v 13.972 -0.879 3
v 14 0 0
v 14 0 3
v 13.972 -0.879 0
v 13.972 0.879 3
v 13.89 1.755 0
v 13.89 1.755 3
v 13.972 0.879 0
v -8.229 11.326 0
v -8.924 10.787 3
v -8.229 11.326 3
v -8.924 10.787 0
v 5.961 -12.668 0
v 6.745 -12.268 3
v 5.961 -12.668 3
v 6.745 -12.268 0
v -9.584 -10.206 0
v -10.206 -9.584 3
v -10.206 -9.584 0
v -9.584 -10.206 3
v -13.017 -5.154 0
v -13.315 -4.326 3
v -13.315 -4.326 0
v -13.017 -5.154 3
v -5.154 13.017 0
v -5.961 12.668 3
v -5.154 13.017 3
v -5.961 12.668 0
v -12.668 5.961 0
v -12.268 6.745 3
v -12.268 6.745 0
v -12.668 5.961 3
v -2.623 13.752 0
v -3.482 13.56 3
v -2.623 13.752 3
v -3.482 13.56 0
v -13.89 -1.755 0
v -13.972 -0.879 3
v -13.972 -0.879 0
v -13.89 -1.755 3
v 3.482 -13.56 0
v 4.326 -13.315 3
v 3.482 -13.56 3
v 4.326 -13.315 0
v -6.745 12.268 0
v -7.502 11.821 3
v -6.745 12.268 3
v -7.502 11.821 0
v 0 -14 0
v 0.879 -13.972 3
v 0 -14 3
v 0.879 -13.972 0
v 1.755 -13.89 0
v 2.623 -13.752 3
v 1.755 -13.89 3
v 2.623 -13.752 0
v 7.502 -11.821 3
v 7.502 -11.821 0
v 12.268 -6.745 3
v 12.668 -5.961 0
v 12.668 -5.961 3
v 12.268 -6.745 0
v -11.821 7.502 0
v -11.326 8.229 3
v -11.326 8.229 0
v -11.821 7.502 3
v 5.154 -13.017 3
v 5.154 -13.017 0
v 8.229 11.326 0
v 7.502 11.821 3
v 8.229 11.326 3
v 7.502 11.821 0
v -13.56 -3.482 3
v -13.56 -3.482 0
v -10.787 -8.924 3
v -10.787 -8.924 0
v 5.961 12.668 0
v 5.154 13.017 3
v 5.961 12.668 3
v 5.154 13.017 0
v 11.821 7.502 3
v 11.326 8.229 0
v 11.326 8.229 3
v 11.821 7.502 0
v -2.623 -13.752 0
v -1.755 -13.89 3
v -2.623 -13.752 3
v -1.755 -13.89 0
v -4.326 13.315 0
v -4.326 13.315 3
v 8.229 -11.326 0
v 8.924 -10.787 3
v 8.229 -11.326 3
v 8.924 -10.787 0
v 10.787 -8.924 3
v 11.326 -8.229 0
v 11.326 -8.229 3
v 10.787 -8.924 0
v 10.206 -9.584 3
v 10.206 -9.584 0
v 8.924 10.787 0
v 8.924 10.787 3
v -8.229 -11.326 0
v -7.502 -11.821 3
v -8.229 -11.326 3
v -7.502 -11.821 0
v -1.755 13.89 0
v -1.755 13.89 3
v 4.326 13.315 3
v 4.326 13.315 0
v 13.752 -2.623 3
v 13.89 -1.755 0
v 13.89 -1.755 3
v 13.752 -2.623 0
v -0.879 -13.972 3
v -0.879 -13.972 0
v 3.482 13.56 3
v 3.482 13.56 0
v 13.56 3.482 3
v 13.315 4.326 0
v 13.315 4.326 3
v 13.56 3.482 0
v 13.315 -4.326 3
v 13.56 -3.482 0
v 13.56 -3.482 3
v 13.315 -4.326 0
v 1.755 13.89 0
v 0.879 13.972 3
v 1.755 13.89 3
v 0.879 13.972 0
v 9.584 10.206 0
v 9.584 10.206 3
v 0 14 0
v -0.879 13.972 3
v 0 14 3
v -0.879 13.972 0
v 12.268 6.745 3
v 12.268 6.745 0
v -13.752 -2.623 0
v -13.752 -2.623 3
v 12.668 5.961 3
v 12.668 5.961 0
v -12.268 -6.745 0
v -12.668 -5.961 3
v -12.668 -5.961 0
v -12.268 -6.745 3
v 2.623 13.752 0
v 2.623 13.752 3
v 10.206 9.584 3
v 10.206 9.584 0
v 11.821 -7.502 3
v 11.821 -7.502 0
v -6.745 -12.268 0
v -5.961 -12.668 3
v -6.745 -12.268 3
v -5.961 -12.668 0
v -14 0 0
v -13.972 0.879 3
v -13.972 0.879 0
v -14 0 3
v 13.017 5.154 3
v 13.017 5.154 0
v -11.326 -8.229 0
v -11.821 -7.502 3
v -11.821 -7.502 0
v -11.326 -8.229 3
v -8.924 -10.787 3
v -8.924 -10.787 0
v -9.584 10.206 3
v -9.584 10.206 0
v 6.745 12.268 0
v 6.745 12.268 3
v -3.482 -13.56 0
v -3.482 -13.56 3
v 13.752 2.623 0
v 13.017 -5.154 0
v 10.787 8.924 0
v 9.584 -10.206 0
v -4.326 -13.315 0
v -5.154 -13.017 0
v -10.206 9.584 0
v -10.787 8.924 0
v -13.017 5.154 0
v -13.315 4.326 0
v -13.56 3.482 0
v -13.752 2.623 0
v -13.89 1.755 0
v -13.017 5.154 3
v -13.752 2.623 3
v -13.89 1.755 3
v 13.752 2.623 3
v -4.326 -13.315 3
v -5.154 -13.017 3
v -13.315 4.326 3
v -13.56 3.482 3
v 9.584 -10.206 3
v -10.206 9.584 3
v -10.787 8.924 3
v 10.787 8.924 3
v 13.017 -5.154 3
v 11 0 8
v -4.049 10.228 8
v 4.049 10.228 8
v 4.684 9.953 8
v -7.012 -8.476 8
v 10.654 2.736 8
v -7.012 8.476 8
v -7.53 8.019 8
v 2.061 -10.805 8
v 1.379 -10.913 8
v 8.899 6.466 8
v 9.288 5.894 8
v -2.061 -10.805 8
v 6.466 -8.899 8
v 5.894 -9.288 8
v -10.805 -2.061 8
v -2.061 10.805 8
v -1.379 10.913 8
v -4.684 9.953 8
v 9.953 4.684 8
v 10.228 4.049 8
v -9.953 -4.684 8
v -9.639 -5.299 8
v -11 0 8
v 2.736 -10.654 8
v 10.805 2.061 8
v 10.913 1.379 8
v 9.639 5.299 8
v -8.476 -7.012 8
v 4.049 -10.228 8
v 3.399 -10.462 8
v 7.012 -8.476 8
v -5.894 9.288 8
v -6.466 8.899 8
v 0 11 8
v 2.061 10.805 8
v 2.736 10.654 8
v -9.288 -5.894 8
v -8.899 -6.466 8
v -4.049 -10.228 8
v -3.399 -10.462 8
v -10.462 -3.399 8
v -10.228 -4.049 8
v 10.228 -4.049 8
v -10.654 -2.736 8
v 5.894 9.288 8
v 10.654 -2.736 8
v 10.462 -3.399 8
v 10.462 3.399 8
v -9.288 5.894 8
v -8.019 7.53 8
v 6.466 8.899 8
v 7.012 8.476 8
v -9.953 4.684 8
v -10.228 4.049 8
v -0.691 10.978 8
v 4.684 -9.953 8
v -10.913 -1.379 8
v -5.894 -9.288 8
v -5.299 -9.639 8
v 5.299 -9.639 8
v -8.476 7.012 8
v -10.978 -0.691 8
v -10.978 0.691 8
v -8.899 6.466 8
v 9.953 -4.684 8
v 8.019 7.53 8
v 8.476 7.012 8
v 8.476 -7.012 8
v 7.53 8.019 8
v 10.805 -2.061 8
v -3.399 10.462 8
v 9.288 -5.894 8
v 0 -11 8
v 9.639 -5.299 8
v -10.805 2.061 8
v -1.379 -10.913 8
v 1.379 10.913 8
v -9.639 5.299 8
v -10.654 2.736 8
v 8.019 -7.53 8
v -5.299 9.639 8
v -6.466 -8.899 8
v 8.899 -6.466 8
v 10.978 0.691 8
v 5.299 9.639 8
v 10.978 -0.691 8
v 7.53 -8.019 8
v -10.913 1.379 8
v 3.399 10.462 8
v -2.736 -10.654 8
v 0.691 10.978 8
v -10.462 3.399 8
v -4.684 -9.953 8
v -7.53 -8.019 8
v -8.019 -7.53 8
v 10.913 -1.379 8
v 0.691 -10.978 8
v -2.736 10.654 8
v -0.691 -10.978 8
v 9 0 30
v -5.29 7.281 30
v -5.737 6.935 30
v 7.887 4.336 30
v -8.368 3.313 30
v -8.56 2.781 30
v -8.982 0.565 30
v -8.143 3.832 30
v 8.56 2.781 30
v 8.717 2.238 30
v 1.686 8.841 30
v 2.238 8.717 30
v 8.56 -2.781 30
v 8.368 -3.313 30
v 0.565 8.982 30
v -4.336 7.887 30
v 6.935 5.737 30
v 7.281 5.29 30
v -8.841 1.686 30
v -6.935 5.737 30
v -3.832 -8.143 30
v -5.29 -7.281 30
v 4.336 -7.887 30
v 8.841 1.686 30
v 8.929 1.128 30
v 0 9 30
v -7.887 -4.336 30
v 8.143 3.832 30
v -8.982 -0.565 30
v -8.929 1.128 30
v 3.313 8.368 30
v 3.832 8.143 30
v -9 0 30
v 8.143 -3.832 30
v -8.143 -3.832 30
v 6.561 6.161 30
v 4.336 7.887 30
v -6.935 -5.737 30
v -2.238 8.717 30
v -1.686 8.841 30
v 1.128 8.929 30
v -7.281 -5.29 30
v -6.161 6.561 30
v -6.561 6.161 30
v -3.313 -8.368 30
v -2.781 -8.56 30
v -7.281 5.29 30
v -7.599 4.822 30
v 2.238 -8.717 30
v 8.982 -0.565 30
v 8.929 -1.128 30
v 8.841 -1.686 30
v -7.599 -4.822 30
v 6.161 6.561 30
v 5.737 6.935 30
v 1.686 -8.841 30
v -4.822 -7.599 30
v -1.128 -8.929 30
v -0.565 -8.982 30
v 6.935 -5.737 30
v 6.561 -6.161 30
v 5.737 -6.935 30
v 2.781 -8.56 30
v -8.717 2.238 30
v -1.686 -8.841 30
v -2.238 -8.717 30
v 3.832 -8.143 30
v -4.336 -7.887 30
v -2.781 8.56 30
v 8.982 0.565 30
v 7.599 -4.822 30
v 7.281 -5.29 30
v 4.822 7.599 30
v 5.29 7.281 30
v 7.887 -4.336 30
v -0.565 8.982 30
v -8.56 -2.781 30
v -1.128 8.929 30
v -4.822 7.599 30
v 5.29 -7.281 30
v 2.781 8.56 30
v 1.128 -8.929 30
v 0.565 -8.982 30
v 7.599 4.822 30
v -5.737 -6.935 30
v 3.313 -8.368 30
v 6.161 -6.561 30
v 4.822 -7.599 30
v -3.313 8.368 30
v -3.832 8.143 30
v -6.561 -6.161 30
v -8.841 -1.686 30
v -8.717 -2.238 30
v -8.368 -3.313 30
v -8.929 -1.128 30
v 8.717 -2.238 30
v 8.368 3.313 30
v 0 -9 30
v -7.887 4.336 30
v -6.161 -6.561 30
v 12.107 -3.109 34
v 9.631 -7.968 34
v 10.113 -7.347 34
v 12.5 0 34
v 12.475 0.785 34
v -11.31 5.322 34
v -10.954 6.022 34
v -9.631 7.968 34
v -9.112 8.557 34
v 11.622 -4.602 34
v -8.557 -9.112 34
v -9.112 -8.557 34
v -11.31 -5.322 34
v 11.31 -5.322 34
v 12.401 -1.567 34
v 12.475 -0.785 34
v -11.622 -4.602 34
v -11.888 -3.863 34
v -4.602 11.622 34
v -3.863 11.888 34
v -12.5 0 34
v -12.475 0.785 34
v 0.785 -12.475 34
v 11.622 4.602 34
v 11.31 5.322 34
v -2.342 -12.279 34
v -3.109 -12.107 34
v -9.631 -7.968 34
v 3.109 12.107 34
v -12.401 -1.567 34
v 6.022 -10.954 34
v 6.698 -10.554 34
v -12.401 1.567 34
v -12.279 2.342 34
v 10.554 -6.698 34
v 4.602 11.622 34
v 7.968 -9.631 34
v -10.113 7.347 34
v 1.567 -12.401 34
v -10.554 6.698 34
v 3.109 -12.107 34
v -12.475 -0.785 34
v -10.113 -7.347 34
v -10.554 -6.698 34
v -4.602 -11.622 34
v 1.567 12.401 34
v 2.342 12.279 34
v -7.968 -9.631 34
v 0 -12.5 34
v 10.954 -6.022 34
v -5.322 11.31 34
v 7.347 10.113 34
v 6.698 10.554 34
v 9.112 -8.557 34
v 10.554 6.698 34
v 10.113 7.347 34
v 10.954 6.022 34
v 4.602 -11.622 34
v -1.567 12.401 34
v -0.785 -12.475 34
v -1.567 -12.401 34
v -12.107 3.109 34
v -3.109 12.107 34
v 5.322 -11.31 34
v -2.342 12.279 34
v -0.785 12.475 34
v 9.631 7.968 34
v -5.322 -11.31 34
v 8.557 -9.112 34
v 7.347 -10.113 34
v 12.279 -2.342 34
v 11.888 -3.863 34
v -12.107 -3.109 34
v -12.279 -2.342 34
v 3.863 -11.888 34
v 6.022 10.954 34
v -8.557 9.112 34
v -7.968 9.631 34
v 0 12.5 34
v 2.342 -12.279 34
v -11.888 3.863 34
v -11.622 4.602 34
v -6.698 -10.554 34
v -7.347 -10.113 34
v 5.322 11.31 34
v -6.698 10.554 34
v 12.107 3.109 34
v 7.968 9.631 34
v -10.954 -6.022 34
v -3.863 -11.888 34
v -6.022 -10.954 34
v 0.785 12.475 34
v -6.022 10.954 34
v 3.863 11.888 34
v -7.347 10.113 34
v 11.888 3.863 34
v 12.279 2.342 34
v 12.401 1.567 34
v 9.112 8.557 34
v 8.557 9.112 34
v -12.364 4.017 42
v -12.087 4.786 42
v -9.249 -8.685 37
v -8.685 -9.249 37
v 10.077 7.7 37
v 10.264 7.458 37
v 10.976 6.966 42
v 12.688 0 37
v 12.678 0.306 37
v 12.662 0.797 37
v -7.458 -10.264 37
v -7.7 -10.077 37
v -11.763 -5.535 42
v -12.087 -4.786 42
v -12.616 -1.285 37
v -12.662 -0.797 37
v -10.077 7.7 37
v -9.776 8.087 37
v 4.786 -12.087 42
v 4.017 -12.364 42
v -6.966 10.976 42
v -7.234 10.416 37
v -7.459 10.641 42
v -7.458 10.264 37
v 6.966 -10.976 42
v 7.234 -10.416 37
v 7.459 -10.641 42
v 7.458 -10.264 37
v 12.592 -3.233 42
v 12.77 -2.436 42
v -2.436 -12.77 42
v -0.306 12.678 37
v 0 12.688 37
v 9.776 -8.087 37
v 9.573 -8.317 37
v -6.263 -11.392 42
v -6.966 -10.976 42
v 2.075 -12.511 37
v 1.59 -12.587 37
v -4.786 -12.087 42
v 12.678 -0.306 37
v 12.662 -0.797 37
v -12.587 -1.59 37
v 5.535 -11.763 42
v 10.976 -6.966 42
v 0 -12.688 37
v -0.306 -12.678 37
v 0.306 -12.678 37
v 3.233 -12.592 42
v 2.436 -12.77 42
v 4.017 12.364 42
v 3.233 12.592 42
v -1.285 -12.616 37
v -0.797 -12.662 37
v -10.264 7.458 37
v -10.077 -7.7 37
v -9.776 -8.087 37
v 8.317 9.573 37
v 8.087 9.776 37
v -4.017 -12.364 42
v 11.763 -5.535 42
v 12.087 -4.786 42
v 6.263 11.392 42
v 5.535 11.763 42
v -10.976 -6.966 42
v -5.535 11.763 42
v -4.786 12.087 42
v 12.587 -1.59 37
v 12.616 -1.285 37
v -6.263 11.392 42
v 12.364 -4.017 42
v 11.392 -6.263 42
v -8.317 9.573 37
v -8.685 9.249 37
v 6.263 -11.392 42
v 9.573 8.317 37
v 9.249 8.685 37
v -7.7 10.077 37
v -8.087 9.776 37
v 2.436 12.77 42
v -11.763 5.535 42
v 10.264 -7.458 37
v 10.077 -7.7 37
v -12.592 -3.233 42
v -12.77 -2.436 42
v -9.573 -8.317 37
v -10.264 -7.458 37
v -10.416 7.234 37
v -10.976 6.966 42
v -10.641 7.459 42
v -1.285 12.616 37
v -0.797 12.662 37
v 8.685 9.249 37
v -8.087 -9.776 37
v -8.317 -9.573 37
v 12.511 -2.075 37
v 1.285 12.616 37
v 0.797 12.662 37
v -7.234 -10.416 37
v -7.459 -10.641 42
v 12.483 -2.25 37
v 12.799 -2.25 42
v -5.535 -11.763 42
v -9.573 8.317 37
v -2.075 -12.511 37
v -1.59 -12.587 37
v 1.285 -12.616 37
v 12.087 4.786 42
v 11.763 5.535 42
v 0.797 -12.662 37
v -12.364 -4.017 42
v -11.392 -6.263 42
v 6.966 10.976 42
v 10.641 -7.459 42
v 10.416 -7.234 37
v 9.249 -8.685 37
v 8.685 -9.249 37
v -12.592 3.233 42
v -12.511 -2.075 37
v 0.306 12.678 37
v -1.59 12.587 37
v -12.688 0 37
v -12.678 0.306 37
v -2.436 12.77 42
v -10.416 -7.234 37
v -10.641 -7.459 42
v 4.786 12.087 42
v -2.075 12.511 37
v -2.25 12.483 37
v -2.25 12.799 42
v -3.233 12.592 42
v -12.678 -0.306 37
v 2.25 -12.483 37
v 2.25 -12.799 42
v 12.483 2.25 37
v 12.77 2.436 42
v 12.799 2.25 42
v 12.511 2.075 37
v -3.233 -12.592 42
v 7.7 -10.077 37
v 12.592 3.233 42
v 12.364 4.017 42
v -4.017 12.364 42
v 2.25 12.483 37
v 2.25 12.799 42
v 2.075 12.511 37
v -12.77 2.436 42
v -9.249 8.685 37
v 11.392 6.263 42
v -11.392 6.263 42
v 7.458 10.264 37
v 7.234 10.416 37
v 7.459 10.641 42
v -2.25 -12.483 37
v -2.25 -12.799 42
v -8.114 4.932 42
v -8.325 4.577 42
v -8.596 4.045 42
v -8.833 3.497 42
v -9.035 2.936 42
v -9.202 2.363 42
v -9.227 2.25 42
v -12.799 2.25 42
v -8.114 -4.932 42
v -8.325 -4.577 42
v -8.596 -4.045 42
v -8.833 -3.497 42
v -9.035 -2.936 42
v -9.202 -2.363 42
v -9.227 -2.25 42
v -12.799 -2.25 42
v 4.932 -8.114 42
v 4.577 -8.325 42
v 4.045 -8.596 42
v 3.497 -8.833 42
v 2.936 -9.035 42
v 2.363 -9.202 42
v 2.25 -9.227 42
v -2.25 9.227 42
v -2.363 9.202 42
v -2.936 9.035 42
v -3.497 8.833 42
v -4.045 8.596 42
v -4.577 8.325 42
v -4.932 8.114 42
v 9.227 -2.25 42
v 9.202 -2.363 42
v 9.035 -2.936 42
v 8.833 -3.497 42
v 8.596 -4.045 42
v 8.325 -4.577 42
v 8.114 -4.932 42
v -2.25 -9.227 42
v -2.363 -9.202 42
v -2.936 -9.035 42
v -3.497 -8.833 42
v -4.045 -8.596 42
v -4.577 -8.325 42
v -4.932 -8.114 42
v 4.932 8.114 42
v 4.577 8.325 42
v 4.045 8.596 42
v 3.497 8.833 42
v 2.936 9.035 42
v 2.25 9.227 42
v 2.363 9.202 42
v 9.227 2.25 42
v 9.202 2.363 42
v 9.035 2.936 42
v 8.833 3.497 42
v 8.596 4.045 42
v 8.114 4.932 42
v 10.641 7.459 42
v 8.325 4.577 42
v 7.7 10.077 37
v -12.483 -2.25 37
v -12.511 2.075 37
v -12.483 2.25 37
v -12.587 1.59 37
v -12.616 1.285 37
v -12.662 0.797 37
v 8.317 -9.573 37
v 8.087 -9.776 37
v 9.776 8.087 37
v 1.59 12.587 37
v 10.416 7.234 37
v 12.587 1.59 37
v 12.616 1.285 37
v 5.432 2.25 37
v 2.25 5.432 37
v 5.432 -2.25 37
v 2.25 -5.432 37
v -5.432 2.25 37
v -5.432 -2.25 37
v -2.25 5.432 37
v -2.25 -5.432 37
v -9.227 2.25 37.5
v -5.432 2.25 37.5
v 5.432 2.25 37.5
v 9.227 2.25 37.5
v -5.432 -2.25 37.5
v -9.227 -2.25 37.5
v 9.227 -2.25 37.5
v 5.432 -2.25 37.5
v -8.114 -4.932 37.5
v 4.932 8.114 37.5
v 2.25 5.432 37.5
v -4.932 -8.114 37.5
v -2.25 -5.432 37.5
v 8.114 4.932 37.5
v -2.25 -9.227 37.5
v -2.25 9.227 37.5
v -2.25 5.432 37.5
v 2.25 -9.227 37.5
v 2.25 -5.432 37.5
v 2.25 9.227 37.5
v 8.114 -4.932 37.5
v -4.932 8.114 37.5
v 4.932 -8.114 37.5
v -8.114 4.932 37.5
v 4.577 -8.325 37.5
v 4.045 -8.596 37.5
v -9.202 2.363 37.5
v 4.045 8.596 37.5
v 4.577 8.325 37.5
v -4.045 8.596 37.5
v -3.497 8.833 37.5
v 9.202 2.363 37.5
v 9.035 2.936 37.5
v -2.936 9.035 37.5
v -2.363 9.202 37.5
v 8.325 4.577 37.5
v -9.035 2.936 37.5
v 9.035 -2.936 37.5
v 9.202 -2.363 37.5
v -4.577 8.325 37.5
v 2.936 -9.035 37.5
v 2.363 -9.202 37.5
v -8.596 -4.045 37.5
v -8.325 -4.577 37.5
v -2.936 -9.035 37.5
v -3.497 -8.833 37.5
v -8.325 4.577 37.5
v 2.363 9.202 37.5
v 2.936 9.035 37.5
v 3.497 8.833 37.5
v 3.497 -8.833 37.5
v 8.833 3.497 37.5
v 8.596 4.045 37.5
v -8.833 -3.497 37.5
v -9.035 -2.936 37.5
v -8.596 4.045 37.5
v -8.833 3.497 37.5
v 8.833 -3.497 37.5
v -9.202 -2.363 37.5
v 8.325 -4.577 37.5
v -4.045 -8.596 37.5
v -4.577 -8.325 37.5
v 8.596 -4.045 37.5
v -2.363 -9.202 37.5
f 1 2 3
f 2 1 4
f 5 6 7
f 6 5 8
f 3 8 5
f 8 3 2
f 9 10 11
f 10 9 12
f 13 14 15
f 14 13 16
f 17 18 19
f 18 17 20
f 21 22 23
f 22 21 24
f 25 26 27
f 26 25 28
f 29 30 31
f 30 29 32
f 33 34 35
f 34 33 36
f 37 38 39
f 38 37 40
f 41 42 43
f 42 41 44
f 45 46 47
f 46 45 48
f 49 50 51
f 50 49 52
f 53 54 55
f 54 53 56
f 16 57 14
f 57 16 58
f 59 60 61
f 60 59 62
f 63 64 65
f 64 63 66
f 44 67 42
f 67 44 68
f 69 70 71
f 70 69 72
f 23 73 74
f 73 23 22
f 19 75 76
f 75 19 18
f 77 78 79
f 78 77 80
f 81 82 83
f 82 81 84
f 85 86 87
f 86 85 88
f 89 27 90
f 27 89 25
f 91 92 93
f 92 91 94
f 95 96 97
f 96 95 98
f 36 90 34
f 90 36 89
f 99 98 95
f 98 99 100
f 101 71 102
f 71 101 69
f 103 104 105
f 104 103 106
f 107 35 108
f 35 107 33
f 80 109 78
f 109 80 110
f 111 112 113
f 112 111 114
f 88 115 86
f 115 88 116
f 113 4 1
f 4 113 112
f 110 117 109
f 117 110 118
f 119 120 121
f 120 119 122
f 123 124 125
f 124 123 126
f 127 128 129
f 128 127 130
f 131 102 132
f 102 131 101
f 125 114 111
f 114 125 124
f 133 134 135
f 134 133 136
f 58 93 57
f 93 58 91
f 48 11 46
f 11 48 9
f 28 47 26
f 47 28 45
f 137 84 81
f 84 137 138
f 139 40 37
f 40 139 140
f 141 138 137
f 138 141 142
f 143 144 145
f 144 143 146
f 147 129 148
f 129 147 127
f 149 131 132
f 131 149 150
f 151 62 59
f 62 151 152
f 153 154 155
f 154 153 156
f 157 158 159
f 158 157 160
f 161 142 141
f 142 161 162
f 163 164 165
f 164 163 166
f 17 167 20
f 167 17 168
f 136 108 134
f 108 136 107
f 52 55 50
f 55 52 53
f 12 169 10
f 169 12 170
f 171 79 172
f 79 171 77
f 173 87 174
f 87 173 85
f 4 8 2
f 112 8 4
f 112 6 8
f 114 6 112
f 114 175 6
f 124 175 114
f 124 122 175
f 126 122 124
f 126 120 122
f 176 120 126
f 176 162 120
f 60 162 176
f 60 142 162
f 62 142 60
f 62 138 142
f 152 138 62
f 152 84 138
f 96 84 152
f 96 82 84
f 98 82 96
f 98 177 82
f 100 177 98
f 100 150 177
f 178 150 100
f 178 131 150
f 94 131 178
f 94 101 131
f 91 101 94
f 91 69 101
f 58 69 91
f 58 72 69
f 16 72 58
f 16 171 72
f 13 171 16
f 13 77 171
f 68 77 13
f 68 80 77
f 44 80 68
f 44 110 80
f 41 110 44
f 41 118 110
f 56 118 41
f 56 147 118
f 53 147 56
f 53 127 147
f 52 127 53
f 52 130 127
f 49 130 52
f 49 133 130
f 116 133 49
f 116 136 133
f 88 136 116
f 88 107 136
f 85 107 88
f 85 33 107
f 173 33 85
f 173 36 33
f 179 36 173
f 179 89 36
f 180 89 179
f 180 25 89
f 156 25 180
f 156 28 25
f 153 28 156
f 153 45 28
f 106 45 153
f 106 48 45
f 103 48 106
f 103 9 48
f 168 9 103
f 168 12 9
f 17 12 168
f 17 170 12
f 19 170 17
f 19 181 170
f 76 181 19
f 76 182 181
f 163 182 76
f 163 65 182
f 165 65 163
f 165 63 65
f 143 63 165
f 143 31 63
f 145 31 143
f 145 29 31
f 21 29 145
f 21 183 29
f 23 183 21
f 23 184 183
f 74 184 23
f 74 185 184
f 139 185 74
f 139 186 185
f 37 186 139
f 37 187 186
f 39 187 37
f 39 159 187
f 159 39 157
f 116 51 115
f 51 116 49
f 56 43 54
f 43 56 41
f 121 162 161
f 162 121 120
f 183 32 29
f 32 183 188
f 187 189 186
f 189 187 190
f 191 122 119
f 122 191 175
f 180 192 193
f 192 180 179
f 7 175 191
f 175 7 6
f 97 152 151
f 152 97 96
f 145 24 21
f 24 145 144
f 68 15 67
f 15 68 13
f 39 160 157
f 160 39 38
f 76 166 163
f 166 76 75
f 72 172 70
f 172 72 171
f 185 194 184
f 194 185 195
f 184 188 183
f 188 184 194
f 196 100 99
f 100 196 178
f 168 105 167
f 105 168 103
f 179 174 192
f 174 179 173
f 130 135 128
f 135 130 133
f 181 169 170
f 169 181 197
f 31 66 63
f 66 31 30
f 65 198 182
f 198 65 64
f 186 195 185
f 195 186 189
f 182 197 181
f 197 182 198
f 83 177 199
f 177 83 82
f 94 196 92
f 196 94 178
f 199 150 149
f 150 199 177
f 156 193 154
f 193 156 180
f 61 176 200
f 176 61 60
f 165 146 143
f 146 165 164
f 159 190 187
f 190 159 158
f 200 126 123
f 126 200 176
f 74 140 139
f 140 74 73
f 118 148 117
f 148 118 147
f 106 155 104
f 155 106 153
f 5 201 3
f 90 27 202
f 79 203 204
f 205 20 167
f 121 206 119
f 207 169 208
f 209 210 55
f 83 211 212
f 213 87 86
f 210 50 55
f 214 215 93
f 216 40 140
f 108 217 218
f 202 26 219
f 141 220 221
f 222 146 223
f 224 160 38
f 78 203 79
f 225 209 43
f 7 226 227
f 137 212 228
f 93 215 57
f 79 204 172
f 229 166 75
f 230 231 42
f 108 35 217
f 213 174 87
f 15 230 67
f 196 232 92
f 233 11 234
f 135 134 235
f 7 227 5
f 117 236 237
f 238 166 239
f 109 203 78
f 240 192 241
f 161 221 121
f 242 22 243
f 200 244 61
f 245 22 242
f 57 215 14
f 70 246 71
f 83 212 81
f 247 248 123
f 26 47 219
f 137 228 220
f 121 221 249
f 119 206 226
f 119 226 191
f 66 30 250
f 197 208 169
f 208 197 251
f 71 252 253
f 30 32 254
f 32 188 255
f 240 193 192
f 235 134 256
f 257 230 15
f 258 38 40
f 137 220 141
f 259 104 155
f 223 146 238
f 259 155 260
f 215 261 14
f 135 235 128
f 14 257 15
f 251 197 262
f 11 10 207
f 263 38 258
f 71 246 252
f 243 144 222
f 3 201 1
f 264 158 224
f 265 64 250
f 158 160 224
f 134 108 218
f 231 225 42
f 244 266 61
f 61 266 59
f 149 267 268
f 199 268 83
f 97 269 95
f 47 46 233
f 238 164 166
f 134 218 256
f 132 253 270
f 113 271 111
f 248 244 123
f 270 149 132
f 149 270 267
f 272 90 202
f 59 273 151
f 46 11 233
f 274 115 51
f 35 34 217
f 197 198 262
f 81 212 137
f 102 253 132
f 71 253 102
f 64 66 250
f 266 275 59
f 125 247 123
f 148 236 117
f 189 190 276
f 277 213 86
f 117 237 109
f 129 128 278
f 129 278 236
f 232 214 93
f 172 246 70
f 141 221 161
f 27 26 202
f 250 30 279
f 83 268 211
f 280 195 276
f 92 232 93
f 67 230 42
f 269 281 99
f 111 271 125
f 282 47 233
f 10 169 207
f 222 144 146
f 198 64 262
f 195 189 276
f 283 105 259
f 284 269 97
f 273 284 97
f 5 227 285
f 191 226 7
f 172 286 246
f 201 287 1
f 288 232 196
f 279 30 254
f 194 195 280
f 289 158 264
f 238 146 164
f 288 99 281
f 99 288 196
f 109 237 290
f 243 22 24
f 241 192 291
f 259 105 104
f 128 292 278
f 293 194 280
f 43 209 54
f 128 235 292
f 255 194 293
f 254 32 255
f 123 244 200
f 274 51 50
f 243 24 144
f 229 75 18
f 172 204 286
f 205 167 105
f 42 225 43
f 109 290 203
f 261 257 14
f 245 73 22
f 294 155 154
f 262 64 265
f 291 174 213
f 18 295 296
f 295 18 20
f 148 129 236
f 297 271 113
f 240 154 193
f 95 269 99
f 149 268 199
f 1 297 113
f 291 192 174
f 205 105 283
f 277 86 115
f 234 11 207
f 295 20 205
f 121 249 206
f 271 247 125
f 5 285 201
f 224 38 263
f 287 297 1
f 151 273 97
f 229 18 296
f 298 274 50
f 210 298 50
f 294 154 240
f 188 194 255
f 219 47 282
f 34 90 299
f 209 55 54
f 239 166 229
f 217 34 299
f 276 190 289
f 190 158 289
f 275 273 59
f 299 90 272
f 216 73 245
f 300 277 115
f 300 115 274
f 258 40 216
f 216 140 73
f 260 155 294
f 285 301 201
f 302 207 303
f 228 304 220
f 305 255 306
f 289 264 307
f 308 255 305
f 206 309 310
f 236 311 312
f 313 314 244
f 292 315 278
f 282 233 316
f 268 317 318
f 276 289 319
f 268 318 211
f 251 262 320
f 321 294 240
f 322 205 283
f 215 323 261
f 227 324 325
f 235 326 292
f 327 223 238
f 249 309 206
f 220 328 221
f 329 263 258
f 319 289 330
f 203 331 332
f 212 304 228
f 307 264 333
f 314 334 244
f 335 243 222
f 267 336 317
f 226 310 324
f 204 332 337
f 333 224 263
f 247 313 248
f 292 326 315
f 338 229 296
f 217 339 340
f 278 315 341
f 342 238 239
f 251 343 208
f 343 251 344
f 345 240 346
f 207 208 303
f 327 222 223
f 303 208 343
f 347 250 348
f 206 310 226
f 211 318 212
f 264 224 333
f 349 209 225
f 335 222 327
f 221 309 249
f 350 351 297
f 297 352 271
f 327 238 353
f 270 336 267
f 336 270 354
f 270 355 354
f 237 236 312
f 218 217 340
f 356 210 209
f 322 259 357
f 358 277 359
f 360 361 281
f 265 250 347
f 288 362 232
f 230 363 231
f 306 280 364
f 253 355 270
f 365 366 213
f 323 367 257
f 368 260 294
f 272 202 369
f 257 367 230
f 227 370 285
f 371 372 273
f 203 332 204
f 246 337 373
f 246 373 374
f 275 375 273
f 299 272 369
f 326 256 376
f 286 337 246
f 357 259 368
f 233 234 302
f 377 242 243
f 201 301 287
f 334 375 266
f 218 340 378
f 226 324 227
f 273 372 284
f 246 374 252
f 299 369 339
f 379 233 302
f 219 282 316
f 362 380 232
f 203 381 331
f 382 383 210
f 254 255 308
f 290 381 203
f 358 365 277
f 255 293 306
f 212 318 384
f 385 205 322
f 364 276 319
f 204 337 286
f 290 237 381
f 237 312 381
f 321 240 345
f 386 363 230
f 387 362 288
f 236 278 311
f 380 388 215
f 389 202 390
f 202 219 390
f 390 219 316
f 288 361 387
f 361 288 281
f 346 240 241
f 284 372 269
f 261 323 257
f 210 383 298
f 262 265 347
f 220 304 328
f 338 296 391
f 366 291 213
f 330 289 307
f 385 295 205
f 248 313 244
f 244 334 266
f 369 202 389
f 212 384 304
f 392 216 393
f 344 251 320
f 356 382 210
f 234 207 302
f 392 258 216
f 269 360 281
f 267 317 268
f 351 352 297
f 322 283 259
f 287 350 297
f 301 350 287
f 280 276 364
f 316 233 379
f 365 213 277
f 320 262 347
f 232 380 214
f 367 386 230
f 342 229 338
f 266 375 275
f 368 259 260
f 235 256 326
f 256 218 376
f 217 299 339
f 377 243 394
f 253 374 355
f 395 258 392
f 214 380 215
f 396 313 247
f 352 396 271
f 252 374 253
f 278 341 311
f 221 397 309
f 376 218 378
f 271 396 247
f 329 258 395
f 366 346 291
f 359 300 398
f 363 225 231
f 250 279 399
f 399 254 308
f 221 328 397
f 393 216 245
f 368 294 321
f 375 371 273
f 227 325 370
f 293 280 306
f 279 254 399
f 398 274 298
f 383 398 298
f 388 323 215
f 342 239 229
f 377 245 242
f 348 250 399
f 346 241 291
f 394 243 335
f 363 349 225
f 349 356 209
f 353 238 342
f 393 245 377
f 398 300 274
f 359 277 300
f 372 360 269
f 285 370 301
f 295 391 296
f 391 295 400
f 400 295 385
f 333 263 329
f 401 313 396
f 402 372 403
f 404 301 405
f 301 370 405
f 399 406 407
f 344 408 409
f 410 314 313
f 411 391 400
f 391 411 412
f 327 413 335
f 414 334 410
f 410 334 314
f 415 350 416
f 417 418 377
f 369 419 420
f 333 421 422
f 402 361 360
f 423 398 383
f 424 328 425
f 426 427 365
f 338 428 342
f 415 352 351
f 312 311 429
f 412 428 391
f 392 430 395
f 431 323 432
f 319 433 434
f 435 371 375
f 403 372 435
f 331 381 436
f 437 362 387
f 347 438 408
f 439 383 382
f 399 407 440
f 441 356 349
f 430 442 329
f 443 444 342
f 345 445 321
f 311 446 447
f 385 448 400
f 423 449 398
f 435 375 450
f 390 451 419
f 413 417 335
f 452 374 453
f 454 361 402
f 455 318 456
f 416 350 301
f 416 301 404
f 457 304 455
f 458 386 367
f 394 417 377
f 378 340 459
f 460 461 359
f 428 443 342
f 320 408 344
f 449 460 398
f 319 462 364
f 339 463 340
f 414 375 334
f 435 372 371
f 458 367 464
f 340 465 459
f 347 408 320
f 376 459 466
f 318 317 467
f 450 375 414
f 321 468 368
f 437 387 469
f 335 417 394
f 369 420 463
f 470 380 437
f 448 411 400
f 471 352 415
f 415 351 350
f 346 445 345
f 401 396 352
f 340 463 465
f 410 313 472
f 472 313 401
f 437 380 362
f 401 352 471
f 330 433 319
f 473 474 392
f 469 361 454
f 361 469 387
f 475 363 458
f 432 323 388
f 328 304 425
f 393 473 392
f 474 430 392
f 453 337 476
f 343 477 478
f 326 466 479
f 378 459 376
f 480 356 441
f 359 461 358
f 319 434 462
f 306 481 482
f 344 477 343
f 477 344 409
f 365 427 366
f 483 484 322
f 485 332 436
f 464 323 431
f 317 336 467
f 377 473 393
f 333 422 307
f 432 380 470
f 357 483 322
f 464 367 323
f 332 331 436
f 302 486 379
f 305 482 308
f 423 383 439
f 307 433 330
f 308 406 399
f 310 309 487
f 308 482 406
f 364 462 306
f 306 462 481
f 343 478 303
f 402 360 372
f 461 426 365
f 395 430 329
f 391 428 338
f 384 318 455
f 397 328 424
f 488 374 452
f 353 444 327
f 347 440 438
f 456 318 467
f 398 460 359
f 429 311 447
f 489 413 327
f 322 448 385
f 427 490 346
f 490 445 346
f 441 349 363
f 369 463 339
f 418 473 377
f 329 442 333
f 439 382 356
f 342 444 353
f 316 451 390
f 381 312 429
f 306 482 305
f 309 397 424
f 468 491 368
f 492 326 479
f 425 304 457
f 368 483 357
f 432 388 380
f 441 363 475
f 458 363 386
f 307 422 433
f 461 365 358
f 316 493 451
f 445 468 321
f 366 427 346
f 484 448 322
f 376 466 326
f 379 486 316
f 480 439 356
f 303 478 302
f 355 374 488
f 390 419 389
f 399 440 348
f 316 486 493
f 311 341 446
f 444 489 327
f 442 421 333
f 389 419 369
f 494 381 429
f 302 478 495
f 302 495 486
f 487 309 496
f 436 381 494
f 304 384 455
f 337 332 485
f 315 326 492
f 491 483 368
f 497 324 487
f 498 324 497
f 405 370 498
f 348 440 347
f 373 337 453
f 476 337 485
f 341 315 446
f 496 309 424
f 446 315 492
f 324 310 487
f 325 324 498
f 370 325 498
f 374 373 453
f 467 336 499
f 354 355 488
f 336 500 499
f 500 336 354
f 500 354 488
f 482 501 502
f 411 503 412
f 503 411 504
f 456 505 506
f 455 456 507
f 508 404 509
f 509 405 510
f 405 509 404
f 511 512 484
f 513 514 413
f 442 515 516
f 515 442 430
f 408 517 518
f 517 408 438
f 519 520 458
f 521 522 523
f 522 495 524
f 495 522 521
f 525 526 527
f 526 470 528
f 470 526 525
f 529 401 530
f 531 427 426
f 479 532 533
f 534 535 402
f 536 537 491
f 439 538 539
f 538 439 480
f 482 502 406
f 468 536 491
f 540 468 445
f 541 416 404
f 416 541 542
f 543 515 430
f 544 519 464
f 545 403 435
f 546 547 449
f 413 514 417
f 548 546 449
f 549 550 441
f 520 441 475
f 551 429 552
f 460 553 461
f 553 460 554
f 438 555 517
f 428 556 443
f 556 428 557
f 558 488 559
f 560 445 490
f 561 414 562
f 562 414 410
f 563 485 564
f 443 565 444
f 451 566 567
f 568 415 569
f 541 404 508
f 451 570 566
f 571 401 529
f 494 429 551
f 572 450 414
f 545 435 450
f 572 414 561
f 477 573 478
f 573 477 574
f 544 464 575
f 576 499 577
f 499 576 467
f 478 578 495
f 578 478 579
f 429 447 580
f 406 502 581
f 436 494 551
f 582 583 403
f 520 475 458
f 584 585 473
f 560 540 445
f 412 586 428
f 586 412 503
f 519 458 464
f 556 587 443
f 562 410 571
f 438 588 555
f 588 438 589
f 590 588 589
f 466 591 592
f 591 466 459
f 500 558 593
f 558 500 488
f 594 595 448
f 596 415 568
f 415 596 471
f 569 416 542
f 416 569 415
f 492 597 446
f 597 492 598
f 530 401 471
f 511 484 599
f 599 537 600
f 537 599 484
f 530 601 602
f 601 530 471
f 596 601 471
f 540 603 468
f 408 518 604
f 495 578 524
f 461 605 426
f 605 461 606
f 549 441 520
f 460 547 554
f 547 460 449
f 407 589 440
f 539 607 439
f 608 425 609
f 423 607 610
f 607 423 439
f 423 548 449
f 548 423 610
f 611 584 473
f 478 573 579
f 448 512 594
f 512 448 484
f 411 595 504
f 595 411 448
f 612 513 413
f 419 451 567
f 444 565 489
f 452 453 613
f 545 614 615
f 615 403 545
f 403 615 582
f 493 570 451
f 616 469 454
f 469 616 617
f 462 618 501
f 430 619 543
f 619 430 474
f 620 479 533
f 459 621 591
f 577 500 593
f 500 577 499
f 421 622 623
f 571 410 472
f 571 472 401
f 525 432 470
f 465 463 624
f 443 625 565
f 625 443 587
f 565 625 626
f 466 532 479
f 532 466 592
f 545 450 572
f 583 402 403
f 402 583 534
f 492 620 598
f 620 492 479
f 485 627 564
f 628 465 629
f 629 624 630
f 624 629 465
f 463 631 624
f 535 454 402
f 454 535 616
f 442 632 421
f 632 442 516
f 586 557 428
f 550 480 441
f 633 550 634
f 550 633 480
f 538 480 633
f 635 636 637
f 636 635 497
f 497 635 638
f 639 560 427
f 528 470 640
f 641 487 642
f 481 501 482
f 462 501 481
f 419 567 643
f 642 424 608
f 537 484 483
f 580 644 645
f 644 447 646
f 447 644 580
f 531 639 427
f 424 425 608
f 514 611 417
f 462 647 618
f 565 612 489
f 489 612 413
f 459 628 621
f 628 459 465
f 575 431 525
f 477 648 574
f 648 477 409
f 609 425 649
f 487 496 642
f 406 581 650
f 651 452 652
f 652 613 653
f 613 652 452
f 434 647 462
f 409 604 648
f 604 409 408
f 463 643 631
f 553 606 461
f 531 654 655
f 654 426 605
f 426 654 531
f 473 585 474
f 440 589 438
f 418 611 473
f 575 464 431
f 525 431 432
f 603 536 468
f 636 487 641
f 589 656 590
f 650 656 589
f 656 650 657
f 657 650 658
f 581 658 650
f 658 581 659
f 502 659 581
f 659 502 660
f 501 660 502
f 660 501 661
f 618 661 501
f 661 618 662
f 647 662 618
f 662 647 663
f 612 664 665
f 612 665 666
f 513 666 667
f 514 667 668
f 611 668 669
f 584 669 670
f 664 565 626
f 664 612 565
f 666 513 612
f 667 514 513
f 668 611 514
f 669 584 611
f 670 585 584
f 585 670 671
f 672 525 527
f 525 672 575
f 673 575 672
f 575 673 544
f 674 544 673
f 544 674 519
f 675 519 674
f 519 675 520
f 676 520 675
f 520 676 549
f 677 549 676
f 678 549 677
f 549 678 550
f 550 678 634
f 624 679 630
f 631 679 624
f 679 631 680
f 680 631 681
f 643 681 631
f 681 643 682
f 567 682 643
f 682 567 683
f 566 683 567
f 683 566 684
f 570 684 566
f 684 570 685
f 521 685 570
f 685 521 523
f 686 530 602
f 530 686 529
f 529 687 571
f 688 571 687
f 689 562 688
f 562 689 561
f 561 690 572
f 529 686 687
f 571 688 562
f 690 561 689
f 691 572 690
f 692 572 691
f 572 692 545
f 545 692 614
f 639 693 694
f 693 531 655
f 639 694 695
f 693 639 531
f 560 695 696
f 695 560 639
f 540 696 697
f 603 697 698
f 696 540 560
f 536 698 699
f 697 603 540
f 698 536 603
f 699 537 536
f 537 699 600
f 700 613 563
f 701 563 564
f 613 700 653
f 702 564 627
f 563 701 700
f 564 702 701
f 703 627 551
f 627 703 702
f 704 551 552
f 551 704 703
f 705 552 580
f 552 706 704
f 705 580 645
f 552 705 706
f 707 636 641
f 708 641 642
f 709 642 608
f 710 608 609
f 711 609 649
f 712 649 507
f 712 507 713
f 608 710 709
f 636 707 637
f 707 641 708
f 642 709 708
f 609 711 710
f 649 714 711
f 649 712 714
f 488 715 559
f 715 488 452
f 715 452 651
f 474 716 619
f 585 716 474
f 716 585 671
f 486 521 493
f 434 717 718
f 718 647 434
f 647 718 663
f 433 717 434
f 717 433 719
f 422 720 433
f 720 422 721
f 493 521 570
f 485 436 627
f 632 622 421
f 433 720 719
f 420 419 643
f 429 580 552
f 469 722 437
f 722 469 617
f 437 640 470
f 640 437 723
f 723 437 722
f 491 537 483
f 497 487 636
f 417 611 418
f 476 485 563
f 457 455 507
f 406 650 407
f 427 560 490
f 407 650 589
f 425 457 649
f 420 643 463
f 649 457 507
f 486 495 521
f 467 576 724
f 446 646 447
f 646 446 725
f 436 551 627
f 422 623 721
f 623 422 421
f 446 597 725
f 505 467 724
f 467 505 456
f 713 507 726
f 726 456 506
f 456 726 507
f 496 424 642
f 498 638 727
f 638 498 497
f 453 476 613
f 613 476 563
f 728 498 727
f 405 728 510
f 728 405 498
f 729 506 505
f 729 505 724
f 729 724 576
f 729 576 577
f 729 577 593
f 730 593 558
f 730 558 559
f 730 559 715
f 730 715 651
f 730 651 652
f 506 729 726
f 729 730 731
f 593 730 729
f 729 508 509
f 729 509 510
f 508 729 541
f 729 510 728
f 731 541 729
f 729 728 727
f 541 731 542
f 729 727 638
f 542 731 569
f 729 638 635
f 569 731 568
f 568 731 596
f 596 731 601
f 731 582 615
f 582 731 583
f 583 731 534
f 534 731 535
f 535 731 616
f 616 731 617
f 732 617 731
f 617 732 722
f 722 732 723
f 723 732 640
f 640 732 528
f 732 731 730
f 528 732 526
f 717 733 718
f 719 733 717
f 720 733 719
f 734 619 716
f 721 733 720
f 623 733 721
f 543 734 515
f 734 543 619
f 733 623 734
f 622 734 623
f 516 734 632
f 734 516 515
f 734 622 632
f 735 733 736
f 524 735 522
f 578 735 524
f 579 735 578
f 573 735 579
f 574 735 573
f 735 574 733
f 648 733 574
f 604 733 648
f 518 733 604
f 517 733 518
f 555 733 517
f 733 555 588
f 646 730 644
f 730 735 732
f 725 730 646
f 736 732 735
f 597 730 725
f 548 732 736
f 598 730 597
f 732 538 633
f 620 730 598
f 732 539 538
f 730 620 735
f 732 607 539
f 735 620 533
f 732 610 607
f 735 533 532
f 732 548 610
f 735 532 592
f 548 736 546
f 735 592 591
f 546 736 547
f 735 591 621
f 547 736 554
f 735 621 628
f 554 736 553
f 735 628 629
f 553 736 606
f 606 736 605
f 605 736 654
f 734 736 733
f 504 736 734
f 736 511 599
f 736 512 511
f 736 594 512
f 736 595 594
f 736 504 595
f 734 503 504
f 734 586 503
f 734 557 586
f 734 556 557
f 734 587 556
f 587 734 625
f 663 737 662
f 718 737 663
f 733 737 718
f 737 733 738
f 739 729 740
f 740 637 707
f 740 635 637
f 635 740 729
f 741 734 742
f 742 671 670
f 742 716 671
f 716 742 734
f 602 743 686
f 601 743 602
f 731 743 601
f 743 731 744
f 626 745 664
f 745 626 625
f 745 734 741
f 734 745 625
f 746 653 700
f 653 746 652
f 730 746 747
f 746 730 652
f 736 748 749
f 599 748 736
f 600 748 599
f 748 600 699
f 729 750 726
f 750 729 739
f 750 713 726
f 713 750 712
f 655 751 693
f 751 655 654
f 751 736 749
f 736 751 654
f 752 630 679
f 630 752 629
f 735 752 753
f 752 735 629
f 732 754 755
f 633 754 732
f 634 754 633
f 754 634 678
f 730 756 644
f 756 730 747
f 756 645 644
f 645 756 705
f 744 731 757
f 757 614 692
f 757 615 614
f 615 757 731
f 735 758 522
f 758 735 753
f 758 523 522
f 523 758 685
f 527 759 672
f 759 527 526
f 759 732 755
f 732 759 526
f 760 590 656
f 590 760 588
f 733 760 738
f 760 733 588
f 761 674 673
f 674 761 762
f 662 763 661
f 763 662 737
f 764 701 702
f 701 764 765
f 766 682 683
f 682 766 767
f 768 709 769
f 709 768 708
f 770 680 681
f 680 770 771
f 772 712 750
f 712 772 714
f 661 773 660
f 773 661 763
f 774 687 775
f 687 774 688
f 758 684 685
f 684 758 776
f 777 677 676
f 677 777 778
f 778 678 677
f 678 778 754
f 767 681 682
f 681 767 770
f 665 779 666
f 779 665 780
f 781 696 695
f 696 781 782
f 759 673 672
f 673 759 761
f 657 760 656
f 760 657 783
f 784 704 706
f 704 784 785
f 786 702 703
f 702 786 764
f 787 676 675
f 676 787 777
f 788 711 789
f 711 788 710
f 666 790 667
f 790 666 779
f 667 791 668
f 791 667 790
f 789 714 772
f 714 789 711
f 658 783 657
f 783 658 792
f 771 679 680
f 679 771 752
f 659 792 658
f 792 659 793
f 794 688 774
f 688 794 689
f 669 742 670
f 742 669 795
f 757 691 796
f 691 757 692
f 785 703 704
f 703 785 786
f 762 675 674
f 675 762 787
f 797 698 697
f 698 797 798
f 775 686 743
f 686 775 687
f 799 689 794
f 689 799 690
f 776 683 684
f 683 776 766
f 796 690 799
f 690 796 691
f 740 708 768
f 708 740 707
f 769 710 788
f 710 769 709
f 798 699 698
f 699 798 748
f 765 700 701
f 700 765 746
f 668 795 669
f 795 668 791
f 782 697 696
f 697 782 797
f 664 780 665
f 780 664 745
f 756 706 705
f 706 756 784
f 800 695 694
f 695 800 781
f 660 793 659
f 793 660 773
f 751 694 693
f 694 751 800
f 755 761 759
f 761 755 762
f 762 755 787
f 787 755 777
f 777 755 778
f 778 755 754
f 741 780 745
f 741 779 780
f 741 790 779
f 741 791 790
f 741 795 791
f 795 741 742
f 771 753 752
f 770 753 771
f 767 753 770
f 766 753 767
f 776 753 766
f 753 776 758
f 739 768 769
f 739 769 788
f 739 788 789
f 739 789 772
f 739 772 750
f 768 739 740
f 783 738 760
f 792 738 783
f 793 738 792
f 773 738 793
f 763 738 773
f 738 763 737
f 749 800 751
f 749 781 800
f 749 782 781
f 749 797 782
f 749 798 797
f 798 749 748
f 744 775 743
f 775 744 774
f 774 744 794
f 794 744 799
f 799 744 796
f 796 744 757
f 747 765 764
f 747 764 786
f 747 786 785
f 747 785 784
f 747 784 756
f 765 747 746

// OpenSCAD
// Classical Chess Rook (Tower)
// Designed for support-free 3D printing

// Set high resolution for smooth circular curves
$fn = 100; 

module chess_rook() {
    difference() {
        // --- MAIN SOLID BODY ---
        union() {
            // 1. Base ring (Flat on build plate)
            cylinder(h = 3, r1 = 14, r2 = 14);
            
            // 2. Base taper
            translate([0, 0, 3]) 
                cylinder(h = 5, r1 = 14, r2 = 11);
            
            // 3. Main trunk (Slight inward slope)
            translate([0, 0, 8]) 
                cylinder(h = 22, r1 = 11, r2 = 9);
            
            // 4. Collar (Outward flare)
            translate([0, 0, 30]) 
                cylinder(h = 4, r1 = 9, r2 = 12.5);
            
            // 5. Crown / Head
            translate([0, 0, 34]) 
                cylinder(h = 8, r1 = 12.5, r2 = 13);
        }
        
        // --- SUBTRACTIONS (CUTOUTS) ---
        
        // Hollow out the top bowl
        // Extends slightly above the model to ensure a clean boolean cut
        translate([0, 0, 37.5]) 
            cylinder(h = 6, r = 9.5);
        
        // Crenellations (The tower battlements)
        // Cuts 4 intersecting slots to create 8 distinct pillars
        translate([0, 0, 40]) {
            for(i = [0 : 45 : 135]) {
                rotate([0, 0, i])
                    cube([30, 4.5, 6], center = true);
            }
        }
    }
}

// Render the model
chess_rook();
